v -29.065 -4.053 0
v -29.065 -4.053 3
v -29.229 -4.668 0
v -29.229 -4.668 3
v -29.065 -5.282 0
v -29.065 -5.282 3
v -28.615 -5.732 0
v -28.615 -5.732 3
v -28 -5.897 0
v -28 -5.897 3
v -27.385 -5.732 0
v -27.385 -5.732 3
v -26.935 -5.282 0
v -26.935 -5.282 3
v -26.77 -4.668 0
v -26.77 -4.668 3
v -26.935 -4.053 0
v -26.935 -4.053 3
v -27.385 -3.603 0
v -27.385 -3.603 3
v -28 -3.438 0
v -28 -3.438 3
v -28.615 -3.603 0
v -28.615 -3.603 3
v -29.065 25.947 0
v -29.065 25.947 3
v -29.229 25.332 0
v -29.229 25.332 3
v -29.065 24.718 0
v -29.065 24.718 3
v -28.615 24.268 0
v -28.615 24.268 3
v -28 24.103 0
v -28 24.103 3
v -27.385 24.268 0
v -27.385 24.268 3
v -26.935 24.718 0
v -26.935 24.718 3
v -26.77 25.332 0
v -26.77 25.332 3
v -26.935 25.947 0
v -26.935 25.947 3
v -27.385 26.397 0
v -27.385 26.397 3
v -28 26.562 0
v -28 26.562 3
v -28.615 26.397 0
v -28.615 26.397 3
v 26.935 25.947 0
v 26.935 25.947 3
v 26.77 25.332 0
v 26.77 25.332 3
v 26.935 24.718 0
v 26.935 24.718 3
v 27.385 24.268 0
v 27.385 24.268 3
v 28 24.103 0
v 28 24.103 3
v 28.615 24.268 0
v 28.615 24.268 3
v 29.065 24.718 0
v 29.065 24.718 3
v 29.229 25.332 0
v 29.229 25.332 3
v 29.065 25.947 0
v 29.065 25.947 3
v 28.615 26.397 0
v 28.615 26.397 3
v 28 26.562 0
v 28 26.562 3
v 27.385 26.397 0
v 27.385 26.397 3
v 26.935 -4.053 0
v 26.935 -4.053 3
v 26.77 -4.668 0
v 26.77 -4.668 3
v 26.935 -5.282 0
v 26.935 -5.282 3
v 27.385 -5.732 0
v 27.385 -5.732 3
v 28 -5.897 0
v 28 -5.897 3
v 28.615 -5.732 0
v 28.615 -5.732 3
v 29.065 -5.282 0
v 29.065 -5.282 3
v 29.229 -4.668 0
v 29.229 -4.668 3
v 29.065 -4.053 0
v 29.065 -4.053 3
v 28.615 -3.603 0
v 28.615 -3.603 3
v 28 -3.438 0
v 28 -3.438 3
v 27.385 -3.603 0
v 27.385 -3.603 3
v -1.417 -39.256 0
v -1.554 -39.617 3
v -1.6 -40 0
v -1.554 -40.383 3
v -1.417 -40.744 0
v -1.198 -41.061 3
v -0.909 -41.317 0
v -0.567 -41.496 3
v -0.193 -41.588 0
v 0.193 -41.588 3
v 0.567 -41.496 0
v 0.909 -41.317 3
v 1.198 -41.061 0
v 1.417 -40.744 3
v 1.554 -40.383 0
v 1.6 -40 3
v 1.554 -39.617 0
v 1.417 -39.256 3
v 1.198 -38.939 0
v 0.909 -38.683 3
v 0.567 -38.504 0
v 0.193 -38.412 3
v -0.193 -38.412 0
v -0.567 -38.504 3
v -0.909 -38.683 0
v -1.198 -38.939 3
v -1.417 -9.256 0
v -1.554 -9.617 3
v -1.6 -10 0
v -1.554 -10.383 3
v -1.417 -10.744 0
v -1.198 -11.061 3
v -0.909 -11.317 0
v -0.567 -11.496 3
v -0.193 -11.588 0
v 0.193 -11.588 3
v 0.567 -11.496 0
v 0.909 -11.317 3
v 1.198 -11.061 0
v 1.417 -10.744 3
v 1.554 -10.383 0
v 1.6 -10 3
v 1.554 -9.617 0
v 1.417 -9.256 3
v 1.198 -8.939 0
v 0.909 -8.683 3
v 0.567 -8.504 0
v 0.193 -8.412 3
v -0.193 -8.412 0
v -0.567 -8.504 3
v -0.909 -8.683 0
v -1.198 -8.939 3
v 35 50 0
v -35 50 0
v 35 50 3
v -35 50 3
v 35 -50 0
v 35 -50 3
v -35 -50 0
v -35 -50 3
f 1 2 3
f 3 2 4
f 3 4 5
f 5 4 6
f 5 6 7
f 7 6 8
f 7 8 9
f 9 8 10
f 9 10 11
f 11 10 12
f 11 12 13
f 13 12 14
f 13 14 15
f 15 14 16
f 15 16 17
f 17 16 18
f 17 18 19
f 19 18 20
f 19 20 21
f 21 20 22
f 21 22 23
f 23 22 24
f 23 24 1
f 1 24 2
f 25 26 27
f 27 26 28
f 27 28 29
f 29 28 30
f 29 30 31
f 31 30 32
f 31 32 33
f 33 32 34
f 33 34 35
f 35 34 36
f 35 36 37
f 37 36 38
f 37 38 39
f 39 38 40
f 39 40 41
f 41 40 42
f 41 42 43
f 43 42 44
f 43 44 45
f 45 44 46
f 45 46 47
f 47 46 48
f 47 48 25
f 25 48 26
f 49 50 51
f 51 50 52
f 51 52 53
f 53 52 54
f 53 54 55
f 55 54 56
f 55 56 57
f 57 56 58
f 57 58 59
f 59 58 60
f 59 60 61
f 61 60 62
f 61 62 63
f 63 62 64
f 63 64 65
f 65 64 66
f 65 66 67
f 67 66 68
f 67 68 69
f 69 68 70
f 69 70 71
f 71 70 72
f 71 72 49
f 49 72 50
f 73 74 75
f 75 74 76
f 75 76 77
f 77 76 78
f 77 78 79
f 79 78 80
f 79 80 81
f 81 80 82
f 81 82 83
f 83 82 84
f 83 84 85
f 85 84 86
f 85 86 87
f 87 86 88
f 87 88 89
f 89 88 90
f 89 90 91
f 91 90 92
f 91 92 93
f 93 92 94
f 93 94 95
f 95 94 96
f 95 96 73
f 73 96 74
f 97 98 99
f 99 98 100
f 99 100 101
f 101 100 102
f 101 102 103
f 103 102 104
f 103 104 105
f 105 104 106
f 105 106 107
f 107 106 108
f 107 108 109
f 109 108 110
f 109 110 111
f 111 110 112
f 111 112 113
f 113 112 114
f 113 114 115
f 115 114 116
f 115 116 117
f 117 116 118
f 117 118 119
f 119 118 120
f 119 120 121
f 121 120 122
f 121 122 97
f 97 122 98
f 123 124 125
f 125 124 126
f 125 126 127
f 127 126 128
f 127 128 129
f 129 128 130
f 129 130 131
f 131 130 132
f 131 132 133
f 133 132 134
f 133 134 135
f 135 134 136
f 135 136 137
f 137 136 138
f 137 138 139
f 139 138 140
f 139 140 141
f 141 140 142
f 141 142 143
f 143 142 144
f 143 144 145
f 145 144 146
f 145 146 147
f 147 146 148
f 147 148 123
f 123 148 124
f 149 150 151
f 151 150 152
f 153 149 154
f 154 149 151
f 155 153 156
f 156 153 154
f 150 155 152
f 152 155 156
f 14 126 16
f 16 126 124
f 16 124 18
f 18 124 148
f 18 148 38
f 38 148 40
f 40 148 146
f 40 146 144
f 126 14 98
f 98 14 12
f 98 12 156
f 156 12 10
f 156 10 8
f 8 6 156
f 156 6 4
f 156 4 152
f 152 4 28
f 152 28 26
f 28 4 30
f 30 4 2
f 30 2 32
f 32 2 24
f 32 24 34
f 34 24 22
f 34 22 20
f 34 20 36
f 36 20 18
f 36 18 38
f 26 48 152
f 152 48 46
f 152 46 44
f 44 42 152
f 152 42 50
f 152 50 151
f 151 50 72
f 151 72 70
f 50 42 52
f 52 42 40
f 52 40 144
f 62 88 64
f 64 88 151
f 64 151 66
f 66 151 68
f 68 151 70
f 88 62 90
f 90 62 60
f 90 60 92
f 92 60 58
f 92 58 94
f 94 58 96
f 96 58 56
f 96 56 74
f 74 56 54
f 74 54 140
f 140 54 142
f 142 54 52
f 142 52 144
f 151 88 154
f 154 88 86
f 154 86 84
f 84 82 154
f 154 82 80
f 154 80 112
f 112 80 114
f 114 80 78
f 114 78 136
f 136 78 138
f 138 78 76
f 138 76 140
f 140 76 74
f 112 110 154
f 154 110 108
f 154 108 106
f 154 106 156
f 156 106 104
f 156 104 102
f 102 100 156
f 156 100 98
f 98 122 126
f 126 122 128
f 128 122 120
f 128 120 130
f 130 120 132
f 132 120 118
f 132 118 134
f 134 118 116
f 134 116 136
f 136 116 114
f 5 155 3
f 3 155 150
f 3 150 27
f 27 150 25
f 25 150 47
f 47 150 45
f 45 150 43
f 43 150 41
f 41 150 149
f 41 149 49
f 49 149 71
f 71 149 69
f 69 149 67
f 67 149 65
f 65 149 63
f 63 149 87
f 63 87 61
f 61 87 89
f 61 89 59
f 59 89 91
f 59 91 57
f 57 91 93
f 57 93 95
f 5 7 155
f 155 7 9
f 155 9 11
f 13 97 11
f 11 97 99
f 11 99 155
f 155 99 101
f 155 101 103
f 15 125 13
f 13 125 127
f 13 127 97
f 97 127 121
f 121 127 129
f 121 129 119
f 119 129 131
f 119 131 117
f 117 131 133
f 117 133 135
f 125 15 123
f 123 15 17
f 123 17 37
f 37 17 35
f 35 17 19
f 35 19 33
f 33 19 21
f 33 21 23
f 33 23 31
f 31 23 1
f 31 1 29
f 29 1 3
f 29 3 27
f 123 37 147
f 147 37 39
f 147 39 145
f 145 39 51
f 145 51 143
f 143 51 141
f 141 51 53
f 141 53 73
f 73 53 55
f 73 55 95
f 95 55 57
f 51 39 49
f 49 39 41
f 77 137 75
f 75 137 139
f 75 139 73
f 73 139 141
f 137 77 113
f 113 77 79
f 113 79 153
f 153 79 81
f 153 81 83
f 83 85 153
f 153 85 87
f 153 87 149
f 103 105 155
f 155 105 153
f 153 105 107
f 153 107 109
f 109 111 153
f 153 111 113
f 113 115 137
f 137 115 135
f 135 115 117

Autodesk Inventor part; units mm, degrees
ref_plane "YZ Plane" through (0, 0, 0) normal (1, 0, 0) x (0, 1, 0)
ref_plane "XZ Plane" through (0, 0, 0) normal (0, 1, 0) x (-1, 0, 0)
ref_plane "XY Plane" through (0, 0, 0) normal (0, 0, 1) x (1, 0, 0)
sketch "スケッチ1" plane through (0, 0, 0) normal (0, 0, 1) x (1, 0, 0)
  line L0 (-35, -50) -> (35, -50)
  line L1 (35, -50) -> (35, 50)
  line L2 (35, 50) -> (-35, 50)
  line L3 (-35, 50) -> (-35, -50)
  line L4 (-35, -50) -> (35, 50) construction
  line L5 (35, -50) -> (-35, 50) construction
  point P0 (0, 0)
  dimension "d0" = 70
  dimension "d1" = 100
extrude "押し出し1" add sketch "スケッチ1" along normal blind 3
sketch "スケッチ2" plane through (0, 0, 3) normal (0, 0, 1) x (1, 0, 0)
  line L0 (-35, -50) -> (35, -50) projected
  point P0 (0, 0)
  point P1 (0, -40)
  point P2 (0, -10)
  dimension "d4" = 10
  dimension "d5" = 30
hole "穴1" at (0, -40, 3) at (0, -10, 3) direction (0, 0, -1) diameter 3.2 depth 8.8 tip angle 118
sketch "スケッチ3" plane through (0, 0, 3) normal (0, 0, 1) x (1, 0, 0)
  line L0 (-35, 50) -> (-35, -50) projected
  line L1 (35, -50) -> (35, 50) projected
  point P0 (0, 0)
  point P1 (-28, 25.3325)
  point P2 (28, 25.3325)
  point P3 (-28, -4.6675)
  point P4 (28, -4.6675)
  dimension "d14" = 7
  dimension "d15" = 7
  dimension "d16" = 30
  dimension "d17" = 30
  dimension "d18" = 56
hole "穴2" at (-28, 25.3325, 3) at (28, 25.3325, 3) at (-28, -4.6675, 3) at (28, -4.6675, 3) direction (0, 0, -1) diameter 2.459 depth 8.8 tip angle 118 thread size "M3x0.5" class "6H" standard "ISO Metric profile"
properties part number "20220613_カメラ固定"
